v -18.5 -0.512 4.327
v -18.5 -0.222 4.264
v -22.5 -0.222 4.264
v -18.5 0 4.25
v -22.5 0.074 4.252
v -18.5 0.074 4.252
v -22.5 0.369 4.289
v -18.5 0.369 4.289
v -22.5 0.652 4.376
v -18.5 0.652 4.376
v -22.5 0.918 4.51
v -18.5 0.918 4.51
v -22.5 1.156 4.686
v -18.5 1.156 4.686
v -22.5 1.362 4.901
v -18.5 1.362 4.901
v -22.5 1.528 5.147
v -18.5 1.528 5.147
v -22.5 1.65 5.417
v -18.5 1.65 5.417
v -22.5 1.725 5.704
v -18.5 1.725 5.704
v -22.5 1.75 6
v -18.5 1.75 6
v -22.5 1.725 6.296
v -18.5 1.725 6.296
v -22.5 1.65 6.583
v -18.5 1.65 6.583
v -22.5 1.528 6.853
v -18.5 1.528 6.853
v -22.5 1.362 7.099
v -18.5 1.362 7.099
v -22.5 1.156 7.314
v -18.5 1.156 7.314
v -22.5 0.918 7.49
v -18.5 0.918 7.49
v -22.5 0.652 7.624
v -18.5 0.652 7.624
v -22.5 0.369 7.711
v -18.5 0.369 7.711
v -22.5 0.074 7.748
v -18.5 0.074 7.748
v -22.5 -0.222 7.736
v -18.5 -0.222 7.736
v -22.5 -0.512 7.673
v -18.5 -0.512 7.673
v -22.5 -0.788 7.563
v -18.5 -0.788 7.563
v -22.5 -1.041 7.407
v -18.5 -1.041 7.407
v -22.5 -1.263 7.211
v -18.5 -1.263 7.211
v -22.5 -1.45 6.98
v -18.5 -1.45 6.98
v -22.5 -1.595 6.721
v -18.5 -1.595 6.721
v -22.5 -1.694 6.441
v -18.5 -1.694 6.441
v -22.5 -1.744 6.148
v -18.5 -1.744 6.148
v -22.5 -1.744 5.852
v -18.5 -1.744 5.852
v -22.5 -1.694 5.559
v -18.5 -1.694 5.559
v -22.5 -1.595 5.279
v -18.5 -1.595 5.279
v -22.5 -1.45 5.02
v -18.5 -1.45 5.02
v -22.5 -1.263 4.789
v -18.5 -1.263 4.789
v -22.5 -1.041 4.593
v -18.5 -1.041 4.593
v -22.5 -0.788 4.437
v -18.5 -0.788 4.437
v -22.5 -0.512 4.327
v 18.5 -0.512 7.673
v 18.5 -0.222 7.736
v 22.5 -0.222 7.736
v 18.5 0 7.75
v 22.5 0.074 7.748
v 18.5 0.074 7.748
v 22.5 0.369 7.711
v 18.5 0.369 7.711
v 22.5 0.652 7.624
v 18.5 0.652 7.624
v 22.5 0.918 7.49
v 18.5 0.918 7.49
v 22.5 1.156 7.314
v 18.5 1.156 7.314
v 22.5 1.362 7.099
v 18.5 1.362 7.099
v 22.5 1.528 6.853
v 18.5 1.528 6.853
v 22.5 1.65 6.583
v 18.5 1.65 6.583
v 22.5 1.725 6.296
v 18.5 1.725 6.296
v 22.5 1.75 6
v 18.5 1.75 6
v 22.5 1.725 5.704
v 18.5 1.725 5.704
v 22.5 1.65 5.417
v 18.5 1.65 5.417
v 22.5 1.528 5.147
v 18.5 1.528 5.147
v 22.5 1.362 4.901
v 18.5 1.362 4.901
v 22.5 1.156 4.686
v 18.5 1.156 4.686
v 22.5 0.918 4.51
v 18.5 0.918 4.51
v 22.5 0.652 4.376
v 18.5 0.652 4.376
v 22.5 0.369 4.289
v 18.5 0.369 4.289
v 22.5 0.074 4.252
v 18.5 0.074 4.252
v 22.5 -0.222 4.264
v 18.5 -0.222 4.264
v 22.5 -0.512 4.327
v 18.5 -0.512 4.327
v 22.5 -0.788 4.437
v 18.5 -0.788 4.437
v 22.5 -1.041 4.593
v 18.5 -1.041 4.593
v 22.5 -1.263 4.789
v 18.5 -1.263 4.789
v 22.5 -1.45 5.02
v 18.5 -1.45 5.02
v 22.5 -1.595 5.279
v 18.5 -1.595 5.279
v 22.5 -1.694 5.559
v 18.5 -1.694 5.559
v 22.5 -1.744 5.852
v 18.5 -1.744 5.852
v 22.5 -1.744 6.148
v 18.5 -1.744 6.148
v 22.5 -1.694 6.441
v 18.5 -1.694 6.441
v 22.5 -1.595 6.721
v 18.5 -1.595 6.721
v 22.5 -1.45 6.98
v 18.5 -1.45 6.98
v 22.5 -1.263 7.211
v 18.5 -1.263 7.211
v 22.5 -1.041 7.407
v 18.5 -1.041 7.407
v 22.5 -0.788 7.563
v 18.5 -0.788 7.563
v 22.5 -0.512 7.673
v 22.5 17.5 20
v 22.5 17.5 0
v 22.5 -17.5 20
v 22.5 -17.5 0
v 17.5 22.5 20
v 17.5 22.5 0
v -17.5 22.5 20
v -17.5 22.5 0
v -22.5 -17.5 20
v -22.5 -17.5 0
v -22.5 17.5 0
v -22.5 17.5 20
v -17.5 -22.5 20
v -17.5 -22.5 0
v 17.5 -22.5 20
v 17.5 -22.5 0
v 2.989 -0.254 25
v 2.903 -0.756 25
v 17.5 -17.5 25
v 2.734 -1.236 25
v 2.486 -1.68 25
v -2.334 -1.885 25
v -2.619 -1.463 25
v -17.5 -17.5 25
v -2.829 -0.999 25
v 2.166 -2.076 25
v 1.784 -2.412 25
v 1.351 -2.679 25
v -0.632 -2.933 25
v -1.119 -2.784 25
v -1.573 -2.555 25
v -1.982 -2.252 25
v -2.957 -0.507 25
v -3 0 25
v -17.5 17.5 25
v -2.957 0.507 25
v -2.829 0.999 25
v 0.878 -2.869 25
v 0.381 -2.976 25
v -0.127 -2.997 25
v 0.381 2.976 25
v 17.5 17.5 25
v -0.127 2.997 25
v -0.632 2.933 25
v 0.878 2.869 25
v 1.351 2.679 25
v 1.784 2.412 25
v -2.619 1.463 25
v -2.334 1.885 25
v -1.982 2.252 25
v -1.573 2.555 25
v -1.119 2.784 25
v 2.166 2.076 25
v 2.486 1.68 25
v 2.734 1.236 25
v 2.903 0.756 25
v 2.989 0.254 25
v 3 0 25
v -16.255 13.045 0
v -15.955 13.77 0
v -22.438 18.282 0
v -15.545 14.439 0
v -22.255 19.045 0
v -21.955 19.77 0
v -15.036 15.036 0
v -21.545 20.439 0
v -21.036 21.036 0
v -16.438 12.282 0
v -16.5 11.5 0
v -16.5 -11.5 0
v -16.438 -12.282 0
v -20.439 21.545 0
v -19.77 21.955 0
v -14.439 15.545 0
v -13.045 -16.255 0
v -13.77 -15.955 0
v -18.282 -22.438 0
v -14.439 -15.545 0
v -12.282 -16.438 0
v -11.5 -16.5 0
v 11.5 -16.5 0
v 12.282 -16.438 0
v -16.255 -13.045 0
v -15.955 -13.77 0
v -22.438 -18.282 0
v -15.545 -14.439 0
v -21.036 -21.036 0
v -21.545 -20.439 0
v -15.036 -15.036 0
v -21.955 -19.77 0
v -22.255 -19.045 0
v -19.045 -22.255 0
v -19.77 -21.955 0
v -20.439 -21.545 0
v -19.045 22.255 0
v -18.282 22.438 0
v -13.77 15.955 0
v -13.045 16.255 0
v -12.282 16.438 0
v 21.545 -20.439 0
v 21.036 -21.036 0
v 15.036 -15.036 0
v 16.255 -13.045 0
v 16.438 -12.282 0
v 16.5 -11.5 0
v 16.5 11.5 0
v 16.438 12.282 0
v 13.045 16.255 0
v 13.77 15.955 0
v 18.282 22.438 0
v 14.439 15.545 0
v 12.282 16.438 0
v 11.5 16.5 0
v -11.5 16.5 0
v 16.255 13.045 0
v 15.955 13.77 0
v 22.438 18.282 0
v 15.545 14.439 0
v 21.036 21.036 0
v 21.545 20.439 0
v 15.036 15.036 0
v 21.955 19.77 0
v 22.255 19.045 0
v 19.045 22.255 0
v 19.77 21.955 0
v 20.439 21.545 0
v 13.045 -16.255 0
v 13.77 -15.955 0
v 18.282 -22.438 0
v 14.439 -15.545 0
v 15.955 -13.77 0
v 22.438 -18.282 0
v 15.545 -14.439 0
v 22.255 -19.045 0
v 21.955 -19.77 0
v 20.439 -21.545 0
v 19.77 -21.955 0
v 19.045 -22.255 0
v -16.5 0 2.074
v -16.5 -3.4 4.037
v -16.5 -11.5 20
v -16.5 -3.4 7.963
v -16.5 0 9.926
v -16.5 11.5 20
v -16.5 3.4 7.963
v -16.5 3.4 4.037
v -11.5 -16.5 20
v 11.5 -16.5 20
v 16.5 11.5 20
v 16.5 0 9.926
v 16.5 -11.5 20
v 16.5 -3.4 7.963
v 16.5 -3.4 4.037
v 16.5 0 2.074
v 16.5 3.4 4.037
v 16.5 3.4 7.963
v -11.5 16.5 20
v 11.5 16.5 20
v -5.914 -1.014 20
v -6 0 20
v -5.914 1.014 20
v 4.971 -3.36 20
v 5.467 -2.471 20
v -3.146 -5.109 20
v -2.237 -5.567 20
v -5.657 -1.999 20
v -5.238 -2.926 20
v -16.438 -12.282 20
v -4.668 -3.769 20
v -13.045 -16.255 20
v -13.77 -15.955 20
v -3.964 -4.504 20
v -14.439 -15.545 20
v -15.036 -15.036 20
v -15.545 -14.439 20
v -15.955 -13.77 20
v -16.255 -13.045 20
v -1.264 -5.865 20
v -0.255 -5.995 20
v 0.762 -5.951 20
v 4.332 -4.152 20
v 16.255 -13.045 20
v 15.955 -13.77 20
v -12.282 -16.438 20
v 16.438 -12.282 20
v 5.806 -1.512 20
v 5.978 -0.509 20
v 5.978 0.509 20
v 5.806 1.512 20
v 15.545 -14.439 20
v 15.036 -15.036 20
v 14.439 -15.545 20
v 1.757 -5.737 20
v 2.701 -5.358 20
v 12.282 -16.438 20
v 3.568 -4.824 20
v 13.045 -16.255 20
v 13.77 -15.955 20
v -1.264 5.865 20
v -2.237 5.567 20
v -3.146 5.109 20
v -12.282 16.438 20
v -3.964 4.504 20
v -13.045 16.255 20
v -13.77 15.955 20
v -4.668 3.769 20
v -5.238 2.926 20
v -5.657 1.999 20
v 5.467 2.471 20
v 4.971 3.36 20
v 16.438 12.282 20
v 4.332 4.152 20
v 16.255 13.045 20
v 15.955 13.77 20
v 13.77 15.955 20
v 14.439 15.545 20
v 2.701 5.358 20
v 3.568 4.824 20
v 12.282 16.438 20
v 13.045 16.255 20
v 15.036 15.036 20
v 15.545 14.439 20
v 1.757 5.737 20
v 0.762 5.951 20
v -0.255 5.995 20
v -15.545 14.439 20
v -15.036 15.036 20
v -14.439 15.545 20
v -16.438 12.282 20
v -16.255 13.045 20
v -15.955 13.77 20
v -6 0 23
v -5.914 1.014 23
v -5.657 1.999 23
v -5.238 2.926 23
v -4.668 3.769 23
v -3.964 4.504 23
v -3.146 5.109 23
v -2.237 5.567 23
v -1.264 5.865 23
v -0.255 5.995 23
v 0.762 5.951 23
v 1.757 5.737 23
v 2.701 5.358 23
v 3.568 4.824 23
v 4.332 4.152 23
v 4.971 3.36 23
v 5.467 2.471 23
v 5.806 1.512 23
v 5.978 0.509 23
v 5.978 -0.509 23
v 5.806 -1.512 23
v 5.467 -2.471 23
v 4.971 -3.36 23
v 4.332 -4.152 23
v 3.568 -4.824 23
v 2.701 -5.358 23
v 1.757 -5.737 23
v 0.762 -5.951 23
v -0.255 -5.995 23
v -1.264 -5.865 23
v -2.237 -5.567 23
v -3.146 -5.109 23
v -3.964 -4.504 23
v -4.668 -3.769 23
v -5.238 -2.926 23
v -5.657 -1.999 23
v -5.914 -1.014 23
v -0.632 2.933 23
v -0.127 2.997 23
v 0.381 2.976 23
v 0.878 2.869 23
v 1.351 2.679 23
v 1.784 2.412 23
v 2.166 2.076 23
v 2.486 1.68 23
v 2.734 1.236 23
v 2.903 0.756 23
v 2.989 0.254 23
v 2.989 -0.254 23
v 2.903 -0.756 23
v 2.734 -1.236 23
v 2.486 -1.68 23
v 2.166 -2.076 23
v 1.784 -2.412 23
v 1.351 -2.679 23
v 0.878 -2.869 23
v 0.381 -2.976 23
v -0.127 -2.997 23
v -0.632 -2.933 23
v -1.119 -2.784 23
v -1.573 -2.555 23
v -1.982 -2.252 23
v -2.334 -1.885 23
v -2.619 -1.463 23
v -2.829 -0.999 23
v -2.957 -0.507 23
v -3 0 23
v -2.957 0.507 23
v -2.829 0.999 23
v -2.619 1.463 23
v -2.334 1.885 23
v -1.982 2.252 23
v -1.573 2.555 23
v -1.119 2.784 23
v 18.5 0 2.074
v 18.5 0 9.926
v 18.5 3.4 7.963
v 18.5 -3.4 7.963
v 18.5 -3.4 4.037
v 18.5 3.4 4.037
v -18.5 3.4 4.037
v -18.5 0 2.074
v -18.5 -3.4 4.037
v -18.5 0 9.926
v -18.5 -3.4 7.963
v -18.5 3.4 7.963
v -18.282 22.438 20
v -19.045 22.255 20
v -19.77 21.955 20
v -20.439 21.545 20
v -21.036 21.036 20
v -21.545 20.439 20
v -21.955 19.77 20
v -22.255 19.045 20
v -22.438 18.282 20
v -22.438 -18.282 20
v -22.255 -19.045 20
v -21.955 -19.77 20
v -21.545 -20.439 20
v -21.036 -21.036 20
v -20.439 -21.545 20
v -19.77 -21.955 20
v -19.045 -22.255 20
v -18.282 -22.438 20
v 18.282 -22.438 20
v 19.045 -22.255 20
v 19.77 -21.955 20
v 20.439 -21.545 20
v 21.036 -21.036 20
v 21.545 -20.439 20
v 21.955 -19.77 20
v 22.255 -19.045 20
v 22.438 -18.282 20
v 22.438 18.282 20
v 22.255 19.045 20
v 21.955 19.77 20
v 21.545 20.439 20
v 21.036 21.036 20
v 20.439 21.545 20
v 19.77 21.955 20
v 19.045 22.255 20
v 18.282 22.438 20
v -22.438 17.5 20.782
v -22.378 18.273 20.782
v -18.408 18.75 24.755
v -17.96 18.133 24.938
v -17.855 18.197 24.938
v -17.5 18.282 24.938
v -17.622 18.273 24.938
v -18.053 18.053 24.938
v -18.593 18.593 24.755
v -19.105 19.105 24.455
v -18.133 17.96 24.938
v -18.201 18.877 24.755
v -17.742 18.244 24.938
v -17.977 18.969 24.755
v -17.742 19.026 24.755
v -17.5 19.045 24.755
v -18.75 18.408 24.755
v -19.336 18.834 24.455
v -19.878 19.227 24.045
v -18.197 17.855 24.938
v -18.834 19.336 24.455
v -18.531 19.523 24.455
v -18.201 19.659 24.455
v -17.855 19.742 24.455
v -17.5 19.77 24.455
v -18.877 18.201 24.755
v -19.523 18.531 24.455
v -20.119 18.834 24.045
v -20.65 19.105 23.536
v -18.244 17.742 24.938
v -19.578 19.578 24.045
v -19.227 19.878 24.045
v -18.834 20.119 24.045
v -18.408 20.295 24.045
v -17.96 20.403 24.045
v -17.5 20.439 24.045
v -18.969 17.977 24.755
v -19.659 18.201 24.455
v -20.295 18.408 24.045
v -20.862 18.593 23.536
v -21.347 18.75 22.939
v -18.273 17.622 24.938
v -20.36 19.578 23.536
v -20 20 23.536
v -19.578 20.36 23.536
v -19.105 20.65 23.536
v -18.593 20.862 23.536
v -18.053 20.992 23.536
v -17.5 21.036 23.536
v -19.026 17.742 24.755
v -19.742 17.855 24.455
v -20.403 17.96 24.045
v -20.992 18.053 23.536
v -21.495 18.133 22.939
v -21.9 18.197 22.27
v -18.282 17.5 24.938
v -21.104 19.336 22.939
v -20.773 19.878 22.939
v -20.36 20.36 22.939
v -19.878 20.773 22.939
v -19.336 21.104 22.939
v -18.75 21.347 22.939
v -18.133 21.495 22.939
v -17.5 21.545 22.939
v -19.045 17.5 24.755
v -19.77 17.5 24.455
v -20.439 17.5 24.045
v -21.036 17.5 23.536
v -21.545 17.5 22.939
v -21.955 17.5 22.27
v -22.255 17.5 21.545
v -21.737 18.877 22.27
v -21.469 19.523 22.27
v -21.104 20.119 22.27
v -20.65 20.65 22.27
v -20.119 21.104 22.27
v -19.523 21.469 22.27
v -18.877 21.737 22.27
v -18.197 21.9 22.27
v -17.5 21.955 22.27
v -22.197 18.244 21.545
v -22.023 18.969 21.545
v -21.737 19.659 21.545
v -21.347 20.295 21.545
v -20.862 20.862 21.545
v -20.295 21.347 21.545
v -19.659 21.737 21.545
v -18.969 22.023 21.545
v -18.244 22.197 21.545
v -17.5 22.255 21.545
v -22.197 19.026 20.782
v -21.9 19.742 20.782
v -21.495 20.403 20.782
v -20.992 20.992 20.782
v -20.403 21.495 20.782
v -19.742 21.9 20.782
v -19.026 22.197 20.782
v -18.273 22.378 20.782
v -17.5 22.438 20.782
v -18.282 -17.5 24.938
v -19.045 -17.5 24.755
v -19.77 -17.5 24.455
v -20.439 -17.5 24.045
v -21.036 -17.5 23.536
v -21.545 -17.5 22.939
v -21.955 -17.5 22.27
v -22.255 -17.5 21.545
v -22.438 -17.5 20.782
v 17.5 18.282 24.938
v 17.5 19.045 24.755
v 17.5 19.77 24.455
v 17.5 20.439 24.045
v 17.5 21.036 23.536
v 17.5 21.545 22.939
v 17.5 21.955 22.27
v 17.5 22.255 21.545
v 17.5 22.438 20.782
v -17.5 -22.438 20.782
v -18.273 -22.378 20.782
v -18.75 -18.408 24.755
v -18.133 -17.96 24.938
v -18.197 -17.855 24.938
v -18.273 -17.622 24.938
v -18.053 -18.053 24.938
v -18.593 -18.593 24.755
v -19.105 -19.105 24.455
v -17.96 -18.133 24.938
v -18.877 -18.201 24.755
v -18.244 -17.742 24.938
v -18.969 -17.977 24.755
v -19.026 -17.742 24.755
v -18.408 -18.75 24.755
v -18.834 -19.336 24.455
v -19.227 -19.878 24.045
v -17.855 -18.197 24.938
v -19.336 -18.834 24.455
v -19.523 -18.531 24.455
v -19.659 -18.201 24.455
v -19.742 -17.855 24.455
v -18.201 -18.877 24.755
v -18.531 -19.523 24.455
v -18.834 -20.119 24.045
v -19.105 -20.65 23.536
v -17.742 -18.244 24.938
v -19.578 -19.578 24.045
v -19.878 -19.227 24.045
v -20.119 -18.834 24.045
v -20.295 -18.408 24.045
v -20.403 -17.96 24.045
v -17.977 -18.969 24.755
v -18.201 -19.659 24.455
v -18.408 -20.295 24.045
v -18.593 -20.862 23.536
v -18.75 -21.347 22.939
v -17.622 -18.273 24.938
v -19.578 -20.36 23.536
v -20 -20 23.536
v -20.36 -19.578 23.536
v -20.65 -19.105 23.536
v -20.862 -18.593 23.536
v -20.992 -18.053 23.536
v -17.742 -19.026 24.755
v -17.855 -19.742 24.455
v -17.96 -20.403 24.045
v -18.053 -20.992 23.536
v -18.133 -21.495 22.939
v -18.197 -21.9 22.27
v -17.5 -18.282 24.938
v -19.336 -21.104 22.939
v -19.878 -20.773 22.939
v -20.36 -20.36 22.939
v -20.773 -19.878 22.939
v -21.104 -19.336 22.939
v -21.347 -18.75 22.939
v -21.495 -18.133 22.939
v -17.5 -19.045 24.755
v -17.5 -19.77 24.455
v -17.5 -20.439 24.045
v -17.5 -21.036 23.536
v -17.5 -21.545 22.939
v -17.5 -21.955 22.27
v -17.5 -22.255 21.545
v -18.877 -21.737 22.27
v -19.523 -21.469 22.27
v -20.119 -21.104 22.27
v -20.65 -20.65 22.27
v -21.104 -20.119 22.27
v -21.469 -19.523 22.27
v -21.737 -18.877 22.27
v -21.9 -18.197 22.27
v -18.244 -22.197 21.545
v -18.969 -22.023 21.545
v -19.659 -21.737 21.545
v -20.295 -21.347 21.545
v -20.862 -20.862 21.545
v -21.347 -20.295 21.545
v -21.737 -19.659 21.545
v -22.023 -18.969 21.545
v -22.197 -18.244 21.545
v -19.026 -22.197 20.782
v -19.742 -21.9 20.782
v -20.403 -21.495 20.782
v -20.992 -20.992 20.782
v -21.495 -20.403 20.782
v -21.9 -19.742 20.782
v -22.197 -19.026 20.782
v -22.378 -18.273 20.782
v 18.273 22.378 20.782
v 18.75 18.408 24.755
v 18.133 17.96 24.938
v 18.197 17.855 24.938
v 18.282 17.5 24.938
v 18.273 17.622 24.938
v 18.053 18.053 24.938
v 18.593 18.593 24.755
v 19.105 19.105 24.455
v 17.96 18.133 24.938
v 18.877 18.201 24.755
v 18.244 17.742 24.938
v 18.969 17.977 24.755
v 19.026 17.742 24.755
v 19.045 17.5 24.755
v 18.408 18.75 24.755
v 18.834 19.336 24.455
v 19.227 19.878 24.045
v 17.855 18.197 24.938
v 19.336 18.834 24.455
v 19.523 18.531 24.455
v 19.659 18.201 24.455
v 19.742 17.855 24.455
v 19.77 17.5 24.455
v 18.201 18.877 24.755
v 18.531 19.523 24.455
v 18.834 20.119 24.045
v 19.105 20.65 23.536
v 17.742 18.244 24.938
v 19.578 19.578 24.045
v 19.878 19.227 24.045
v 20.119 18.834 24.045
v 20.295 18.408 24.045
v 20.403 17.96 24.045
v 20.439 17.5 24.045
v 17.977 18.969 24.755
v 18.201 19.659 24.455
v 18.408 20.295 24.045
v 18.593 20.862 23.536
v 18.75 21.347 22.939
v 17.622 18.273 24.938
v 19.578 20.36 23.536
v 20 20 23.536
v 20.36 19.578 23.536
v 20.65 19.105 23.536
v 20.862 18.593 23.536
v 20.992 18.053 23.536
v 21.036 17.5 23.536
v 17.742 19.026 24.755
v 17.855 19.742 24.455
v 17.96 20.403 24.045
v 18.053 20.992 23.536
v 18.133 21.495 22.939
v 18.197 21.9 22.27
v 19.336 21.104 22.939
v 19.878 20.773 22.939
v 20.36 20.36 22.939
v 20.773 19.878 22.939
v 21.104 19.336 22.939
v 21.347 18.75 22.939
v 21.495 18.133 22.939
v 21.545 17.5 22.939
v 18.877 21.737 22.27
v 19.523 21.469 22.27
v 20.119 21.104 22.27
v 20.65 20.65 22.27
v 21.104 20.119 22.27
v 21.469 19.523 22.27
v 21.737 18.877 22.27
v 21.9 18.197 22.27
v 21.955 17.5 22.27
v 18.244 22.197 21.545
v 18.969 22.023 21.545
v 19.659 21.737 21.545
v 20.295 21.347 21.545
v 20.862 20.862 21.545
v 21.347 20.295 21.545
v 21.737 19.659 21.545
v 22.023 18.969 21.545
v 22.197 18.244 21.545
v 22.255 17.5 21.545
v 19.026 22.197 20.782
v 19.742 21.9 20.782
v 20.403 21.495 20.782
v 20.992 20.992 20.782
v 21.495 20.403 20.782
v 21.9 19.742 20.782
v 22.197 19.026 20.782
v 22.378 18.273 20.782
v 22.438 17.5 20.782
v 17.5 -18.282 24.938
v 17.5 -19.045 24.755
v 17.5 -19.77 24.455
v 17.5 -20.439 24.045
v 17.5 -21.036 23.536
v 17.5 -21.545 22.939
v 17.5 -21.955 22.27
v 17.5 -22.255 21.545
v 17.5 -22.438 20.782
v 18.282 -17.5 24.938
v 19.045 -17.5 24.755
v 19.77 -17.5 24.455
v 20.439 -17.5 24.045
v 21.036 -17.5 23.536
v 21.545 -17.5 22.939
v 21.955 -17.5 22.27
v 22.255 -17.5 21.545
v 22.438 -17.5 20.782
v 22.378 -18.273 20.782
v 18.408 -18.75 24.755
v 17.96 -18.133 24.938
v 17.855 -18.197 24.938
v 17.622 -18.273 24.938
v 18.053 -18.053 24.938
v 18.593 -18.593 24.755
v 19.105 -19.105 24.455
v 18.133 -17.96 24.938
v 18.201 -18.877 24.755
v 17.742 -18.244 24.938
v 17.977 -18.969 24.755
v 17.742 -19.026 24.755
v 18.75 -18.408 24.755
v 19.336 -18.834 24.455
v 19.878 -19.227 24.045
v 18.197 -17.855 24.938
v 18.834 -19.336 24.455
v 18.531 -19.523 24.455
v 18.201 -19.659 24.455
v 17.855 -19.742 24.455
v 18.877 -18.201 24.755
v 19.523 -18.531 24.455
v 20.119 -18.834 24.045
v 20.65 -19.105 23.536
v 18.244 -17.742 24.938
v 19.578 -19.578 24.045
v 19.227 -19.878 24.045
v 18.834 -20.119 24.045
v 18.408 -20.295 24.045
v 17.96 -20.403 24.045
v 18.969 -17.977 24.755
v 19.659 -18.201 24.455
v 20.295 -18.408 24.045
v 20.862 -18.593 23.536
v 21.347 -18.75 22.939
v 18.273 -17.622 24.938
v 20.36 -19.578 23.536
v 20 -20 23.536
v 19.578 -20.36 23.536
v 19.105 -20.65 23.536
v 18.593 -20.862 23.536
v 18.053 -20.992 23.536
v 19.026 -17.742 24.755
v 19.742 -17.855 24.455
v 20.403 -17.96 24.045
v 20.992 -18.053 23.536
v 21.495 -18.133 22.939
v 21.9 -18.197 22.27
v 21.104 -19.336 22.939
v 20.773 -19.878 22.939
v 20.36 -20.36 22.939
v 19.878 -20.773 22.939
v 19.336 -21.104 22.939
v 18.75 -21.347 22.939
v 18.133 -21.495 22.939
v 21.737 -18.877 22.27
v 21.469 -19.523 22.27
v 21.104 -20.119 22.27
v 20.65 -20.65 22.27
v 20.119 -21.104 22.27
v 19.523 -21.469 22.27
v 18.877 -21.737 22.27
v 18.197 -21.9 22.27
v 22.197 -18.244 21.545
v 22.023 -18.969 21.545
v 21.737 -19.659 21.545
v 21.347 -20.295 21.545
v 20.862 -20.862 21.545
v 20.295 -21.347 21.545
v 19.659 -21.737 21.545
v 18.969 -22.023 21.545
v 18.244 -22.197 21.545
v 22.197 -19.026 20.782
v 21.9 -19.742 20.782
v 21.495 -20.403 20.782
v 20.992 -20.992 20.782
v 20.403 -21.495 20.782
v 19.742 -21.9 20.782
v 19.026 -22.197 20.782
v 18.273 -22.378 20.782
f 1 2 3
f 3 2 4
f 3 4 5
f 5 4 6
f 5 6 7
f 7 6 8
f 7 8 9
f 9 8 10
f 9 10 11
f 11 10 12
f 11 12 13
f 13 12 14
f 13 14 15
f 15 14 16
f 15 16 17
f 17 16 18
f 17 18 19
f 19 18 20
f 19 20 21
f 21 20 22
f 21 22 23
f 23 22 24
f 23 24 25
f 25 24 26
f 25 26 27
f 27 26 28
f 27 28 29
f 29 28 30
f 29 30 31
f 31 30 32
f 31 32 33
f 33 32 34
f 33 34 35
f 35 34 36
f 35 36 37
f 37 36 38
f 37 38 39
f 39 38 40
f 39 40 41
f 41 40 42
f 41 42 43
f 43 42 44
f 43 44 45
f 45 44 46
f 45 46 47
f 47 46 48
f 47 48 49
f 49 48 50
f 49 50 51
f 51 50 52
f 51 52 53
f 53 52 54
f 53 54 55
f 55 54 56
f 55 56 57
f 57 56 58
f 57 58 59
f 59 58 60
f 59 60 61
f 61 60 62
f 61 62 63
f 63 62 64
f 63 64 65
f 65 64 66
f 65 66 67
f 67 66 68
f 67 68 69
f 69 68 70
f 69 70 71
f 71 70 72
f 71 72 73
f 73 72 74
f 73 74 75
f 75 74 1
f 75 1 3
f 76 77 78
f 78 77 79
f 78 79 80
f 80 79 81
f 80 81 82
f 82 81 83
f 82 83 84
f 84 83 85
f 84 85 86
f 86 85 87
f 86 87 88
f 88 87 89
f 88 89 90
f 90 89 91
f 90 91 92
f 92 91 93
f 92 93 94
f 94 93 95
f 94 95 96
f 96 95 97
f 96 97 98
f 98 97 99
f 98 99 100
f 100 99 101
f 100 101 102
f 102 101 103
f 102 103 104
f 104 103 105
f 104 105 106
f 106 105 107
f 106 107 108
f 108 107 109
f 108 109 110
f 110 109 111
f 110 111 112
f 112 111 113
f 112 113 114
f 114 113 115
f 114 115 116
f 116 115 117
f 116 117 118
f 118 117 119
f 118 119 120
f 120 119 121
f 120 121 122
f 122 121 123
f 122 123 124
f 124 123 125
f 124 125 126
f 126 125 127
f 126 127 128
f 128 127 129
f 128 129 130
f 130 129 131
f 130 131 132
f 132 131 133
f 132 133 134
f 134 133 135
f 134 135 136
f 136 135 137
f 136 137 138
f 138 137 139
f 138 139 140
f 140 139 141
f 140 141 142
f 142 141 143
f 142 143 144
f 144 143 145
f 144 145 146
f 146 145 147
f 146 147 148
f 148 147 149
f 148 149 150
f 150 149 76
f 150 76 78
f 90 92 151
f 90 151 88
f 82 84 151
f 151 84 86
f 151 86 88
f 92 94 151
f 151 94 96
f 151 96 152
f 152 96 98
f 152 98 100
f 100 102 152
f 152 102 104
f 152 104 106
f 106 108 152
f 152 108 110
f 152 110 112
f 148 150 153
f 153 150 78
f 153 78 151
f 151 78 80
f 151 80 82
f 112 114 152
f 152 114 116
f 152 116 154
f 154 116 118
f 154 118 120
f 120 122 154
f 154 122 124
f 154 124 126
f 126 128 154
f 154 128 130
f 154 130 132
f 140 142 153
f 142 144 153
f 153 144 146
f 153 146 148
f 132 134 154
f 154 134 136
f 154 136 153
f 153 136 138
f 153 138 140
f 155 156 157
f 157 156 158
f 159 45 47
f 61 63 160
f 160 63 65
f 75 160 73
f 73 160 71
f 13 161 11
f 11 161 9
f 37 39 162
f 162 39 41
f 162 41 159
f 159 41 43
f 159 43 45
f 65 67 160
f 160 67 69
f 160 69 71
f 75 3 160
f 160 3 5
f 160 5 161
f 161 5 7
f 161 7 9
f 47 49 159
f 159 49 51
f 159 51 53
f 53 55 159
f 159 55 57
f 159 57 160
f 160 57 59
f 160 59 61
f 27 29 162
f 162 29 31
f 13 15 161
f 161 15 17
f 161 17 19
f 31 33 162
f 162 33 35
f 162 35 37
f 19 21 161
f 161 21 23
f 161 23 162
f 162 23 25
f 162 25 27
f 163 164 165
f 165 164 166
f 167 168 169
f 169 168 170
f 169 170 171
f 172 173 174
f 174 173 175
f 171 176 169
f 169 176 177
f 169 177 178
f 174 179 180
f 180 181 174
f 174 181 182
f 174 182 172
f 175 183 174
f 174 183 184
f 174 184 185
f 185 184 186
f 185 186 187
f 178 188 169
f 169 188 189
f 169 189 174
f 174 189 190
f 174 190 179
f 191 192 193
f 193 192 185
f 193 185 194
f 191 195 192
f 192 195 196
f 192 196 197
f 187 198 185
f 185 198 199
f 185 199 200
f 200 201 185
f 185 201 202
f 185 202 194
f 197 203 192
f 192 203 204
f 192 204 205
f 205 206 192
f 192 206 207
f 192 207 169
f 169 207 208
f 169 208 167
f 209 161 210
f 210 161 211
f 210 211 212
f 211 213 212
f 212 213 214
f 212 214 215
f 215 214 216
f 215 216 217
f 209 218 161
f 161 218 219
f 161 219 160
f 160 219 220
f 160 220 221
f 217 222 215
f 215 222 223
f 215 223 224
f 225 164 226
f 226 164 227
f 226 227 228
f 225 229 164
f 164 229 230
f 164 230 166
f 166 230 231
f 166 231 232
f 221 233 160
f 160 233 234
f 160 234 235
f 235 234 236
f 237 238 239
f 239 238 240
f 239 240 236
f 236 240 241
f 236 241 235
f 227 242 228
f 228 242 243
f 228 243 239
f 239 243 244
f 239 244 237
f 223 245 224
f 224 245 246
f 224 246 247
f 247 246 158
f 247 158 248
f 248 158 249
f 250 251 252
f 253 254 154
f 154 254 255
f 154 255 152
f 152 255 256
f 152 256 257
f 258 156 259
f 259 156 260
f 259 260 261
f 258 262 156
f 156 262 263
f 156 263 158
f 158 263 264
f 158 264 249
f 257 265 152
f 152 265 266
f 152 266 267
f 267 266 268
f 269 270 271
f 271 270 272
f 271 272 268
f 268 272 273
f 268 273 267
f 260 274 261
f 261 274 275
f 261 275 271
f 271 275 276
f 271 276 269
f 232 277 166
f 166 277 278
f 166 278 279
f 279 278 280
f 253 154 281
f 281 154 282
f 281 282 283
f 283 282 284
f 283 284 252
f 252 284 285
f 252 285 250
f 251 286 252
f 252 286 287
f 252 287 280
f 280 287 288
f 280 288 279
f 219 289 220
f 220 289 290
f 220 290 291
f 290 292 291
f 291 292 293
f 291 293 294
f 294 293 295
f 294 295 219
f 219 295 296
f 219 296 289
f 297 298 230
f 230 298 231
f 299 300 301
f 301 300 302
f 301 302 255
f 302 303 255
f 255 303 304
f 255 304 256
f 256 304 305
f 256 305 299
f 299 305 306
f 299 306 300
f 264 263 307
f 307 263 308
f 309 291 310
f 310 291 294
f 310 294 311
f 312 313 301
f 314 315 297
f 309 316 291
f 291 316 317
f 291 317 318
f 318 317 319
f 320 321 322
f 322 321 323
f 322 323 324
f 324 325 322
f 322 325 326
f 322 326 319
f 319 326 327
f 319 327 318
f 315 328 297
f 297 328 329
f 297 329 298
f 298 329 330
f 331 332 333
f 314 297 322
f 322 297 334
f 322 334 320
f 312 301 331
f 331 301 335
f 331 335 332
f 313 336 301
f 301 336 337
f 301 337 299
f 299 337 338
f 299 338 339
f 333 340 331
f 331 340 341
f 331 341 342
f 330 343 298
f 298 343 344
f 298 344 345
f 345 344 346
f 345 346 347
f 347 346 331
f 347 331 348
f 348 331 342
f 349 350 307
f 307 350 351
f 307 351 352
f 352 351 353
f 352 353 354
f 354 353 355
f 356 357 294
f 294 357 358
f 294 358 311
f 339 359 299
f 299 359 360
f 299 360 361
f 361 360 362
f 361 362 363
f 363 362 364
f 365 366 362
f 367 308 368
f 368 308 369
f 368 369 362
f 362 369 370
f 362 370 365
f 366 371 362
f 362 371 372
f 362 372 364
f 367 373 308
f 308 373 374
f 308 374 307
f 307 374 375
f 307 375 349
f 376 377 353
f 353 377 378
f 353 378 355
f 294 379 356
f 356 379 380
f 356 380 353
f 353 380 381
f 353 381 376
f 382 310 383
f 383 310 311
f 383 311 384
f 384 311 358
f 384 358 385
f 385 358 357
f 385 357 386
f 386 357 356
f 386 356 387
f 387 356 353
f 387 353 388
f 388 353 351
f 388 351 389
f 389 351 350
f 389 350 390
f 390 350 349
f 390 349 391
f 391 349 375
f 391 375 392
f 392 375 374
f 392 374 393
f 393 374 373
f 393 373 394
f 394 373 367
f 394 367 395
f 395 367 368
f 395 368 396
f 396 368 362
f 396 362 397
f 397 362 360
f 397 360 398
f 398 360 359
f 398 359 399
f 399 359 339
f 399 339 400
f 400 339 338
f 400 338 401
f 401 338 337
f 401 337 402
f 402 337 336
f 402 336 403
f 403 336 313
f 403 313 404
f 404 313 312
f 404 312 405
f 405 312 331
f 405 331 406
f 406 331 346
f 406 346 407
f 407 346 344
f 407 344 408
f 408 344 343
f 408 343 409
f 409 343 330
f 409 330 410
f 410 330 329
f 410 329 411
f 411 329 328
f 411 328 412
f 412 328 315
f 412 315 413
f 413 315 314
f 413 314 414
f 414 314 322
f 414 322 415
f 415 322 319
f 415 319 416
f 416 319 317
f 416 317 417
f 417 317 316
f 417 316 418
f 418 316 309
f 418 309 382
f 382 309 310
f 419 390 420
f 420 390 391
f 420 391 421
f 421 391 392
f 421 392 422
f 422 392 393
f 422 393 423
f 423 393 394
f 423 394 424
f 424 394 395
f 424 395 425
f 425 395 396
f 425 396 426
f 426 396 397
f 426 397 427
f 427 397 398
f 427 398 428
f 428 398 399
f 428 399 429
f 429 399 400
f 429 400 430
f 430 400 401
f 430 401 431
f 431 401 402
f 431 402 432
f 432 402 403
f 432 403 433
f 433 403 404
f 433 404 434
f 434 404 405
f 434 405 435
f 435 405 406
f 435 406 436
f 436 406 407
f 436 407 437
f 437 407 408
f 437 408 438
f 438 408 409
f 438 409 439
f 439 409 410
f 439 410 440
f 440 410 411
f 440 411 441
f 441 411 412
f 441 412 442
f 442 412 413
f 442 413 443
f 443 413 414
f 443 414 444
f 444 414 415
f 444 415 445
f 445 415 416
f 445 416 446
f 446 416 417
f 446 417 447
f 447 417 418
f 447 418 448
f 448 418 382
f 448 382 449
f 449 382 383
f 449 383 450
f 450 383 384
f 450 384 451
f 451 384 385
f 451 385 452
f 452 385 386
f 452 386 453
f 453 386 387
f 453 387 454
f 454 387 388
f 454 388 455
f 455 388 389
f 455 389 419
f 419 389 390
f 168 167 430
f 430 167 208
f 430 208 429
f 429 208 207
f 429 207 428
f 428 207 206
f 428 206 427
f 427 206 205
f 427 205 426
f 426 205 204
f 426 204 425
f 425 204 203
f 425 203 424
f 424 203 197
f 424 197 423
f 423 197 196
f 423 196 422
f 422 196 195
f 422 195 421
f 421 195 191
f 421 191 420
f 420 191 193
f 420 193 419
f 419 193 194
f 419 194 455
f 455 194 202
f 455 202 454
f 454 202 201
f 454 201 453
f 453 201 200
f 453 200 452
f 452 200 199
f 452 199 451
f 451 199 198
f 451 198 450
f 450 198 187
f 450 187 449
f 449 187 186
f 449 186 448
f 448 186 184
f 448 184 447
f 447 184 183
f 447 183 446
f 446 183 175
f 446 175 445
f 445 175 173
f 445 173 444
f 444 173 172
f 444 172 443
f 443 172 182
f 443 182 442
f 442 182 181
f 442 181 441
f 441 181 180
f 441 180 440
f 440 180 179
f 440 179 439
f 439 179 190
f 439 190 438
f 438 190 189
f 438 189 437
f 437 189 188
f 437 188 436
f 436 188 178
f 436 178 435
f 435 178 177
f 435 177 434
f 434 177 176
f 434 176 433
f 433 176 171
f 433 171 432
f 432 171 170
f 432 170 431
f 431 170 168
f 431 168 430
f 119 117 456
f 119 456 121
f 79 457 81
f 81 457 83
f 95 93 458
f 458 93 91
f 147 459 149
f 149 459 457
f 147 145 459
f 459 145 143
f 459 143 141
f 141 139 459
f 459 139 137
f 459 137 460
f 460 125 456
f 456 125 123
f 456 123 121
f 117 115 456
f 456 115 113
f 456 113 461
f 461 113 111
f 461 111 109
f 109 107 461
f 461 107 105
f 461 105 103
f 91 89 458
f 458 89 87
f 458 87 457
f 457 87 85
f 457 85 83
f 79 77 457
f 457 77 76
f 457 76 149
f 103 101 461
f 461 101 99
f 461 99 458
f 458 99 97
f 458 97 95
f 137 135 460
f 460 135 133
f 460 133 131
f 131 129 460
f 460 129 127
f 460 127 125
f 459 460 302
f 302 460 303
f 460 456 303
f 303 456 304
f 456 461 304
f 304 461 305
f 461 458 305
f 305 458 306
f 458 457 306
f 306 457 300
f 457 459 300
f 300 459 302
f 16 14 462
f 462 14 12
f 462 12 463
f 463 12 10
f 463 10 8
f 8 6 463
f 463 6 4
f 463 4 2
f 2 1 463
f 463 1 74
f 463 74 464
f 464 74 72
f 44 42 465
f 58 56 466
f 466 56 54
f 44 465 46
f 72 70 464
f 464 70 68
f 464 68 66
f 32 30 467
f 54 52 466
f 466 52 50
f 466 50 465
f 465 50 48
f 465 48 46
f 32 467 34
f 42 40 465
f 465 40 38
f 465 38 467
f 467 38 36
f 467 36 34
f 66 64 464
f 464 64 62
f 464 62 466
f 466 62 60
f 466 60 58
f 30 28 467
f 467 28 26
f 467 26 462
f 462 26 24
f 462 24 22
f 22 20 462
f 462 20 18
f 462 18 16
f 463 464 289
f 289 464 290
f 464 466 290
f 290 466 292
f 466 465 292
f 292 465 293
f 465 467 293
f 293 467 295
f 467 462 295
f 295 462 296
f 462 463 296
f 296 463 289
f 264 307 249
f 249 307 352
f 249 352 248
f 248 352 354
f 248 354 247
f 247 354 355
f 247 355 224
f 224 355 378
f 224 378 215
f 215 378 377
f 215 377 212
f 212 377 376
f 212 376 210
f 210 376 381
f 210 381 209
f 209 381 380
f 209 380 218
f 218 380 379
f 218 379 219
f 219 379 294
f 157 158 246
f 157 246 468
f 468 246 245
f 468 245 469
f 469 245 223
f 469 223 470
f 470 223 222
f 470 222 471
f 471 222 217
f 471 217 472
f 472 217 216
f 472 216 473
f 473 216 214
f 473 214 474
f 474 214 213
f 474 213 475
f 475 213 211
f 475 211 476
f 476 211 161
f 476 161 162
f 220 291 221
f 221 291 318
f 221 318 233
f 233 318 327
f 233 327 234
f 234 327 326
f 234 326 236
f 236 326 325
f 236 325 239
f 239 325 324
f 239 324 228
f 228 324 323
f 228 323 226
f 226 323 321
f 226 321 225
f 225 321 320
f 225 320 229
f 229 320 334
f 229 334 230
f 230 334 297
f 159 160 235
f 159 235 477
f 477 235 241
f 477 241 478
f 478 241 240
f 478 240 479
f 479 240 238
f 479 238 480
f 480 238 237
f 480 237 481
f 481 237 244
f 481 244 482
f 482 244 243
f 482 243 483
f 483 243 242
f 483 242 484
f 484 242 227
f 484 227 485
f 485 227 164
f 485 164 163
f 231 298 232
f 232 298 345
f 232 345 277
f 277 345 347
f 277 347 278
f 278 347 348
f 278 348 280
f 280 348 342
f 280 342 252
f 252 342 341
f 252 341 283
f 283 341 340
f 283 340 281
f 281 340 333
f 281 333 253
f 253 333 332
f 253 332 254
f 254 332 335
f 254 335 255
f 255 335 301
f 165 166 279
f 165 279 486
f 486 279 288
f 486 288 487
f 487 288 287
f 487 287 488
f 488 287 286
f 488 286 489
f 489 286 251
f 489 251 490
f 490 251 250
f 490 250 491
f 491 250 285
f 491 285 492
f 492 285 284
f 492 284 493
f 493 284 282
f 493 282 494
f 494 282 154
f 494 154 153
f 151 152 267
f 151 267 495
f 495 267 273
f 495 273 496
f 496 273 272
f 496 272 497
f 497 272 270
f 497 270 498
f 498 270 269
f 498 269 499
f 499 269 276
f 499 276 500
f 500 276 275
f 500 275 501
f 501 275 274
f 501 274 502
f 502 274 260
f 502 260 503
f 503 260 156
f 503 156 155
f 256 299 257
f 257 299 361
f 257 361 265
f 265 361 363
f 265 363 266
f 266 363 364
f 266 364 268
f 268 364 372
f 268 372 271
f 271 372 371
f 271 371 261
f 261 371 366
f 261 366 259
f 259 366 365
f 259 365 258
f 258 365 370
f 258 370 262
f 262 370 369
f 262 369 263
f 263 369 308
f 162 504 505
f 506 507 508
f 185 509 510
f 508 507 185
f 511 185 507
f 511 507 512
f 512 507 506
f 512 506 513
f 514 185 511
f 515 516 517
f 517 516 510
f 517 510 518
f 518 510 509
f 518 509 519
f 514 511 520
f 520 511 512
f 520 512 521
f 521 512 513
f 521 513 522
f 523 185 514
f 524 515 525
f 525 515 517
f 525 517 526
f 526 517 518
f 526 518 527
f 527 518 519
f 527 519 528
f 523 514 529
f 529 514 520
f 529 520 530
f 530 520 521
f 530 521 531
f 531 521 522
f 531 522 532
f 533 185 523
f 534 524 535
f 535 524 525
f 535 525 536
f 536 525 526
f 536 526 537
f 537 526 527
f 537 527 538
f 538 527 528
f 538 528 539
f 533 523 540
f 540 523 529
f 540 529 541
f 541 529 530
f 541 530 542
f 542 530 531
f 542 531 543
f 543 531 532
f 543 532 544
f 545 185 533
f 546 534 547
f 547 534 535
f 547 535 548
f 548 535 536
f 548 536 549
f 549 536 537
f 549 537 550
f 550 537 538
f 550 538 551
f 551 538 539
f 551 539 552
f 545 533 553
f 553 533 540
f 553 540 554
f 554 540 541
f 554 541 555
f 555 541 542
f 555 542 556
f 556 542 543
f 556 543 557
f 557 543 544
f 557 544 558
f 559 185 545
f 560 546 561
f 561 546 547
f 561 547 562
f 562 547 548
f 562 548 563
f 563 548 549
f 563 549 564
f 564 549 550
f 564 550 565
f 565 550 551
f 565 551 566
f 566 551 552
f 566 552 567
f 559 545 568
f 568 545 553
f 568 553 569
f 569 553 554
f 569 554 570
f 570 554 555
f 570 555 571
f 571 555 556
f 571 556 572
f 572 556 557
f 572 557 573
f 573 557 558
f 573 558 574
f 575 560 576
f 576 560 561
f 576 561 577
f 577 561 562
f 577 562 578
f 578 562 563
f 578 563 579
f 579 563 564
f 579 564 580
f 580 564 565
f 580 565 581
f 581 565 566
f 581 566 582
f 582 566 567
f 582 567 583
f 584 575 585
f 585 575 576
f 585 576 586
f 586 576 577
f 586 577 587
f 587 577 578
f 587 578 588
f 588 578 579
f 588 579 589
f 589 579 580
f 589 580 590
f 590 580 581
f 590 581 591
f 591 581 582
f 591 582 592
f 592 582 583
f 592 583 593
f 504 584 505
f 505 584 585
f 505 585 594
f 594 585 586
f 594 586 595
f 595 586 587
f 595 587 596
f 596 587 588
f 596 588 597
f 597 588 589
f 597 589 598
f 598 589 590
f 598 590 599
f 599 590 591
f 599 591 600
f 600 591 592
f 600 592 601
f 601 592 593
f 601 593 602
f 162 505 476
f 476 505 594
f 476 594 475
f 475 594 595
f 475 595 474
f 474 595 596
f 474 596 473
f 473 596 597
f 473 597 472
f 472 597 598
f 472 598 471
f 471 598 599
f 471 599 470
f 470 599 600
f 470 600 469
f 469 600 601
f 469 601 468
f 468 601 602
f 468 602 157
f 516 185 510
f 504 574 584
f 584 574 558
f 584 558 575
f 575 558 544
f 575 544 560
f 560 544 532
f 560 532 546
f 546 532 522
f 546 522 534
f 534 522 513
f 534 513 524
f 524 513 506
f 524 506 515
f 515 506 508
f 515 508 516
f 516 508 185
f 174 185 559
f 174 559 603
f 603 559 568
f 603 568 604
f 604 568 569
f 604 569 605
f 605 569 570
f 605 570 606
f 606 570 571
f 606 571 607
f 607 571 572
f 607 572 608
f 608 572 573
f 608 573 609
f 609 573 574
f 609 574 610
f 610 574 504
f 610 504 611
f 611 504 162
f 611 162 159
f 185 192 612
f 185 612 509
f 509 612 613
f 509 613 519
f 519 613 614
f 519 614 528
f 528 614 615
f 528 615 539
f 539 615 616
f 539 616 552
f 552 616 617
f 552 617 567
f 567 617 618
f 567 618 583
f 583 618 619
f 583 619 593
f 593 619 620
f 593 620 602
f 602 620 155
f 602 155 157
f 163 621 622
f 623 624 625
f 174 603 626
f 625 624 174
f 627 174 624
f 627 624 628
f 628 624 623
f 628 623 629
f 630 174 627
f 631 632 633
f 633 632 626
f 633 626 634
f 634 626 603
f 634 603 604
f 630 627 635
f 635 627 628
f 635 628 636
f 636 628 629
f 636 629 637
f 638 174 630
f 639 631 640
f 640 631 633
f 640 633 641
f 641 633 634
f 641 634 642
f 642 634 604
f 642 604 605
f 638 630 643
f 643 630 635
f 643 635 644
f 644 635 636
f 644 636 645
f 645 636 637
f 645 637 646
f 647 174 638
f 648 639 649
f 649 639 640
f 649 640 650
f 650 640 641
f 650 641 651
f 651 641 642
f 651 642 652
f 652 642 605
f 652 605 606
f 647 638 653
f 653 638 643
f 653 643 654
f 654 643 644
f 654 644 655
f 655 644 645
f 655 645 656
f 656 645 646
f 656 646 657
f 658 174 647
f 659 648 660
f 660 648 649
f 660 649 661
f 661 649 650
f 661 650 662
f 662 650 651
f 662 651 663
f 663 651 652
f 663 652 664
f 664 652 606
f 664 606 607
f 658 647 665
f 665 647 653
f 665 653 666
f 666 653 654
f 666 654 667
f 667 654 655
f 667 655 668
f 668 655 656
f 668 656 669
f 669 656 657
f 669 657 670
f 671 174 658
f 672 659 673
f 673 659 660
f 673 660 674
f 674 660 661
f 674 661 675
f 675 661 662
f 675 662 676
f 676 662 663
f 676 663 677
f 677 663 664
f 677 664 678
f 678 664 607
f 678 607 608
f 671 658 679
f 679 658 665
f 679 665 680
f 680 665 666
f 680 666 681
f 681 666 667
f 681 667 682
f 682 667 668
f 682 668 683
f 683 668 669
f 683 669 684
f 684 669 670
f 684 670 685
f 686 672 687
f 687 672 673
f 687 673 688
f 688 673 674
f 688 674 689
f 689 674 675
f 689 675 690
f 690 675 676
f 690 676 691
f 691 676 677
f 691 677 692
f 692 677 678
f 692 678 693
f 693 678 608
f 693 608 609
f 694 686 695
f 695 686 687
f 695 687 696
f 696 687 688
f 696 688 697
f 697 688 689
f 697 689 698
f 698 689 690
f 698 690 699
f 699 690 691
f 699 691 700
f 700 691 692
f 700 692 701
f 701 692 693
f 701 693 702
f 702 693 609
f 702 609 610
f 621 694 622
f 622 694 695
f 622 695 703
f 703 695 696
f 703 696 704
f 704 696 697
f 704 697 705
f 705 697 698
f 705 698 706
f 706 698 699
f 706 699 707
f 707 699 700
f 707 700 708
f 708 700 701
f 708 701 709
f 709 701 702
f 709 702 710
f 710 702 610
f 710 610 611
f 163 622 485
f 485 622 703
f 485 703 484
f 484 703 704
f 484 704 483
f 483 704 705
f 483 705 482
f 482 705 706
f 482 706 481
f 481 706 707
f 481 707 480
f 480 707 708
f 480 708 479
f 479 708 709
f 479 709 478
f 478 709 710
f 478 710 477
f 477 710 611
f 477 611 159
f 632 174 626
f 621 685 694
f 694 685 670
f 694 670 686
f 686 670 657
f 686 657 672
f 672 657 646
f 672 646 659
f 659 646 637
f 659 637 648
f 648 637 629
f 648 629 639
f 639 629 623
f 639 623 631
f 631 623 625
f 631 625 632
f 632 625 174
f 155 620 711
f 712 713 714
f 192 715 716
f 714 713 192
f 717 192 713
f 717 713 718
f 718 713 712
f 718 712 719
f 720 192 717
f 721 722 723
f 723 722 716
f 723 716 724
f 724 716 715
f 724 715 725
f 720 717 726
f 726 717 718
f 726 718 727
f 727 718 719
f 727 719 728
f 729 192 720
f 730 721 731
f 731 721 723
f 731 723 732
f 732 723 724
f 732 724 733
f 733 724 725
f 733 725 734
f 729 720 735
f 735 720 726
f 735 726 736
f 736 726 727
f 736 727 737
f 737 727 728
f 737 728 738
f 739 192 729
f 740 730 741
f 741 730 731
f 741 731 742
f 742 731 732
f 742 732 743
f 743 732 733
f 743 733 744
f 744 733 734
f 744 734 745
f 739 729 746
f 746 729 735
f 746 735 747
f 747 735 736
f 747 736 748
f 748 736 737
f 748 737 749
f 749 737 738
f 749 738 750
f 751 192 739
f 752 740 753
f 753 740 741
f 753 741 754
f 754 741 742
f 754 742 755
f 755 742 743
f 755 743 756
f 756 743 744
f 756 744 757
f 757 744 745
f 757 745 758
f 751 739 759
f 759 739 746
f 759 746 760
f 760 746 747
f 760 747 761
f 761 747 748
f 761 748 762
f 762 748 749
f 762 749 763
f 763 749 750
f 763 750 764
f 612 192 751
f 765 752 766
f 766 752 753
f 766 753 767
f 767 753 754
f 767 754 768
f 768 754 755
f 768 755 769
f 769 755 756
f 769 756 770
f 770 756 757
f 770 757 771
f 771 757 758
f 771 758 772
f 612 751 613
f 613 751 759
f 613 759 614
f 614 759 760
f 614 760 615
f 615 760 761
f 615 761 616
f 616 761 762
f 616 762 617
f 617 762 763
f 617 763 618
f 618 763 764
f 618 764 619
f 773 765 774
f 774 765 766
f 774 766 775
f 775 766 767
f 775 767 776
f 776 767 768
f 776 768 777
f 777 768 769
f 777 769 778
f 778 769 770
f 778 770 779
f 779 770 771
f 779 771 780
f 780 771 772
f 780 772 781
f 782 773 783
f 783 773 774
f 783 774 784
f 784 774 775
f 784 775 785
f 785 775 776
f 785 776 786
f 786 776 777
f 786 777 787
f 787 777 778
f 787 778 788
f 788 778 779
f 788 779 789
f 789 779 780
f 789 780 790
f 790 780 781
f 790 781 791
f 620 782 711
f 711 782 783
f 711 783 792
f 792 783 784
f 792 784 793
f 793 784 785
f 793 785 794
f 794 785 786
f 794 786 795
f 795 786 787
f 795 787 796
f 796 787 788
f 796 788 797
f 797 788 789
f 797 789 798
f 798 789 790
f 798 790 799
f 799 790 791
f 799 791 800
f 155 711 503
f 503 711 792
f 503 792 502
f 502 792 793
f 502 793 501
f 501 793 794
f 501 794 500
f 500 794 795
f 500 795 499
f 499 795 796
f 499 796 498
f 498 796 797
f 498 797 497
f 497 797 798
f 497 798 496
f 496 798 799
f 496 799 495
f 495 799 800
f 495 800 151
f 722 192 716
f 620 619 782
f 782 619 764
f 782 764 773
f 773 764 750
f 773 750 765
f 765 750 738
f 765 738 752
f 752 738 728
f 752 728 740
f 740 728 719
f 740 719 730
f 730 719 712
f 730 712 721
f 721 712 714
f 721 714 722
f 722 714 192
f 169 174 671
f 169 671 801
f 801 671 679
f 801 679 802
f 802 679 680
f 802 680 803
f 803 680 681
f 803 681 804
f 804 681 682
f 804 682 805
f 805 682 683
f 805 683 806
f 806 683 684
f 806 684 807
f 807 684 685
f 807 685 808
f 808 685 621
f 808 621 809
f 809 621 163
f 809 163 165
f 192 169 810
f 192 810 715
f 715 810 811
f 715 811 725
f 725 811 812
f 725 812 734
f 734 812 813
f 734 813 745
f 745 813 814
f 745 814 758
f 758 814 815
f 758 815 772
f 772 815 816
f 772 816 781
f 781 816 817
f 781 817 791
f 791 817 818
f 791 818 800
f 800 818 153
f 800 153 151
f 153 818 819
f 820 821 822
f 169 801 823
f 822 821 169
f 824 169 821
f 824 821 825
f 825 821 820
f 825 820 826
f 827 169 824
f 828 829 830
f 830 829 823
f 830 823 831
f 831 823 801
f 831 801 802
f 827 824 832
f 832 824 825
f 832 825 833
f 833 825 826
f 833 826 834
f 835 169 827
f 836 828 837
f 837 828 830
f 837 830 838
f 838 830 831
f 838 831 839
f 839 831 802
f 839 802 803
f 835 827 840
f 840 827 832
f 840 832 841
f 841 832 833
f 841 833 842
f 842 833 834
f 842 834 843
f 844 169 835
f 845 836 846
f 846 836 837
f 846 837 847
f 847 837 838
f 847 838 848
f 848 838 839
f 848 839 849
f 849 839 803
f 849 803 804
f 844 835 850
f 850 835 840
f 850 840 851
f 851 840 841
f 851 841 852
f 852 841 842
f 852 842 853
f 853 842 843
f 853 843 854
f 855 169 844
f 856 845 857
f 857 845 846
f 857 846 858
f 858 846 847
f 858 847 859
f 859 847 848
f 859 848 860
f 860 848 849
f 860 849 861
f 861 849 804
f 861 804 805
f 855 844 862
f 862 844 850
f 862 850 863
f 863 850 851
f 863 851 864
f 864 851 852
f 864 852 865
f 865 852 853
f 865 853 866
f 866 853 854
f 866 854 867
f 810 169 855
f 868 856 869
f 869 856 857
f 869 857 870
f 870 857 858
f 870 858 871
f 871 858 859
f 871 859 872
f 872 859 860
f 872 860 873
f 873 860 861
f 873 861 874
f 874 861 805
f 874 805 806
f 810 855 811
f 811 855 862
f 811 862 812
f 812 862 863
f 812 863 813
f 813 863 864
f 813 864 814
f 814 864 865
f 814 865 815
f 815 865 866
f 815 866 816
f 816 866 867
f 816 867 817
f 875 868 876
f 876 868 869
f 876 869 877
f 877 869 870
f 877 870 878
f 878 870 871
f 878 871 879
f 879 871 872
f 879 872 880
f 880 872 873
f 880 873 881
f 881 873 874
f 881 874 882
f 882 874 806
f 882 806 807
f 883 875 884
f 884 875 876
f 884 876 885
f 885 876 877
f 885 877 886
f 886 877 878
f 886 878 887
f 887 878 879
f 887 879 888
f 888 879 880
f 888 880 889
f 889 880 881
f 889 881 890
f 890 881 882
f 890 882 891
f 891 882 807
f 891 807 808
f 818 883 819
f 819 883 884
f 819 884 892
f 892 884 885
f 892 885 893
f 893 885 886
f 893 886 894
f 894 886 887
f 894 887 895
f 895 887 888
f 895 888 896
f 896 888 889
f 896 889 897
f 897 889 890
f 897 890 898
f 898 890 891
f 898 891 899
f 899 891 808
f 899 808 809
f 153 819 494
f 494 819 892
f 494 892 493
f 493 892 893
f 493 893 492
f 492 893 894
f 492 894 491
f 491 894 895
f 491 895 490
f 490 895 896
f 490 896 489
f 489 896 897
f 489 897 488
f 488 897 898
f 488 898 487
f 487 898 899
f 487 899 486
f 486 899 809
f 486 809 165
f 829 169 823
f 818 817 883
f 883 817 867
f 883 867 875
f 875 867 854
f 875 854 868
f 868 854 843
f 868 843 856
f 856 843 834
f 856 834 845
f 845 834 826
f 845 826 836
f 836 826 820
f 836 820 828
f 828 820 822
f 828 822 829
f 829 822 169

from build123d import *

# Parameters (mm, degrees)
CROQUIS1_W              = 45
CROQUIS1_H              = 45
SALIENTE_EXTRUIR1_DEPTH = 25
CROQUIS2_W              = 33
CROQUIS2_H              = 33
CORTAR_EXTRUIR1_DEPTH   = 20
CROQUIS3_R              = 6
CORTAR_EXTRUIR2_DEPTH   = 3
CROQUIS4_R              = 3
CORTAR_EXTRUIR3_DEPTH   = 6
CROQUIS5_R              = 1.75
CORTAR_EXTRUIR4_DEPTH   = 56
CORTAR_EXTRUIR5_DEPTH   = 2
CORTAR_EXTRUIR6_DEPTH   = 2
REDONDEO1_R             = 5
REDONDEO2_R             = 5


with BuildPart() as part:
    # Croquis1 → Saliente-Extruir1 (new body)
    with BuildSketch(Plane.XY):
        Rectangle(CROQUIS1_W, CROQUIS1_H)
    extrude(amount=SALIENTE_EXTRUIR1_DEPTH)

    # Croquis2 → Cortar-Extruir1 (cut)
    with BuildSketch(Plane(origin=(0, 0, 0), x_dir=(-1, 0, 0), z_dir=(0, 0, -1))):
        Rectangle(CROQUIS2_W, CROQUIS2_H)
    extrude(amount=-CORTAR_EXTRUIR1_DEPTH, mode=Mode.SUBTRACT)

    # Croquis3 → Cortar-Extruir2 (cut)
    with BuildSketch(Plane(origin=(0, 0, 20), x_dir=(-1, 0, 0), z_dir=(0, 0, -1))):
        Circle(CROQUIS3_R)
    extrude(amount=-CORTAR_EXTRUIR2_DEPTH, mode=Mode.SUBTRACT)

    # Croquis4 → Cortar-Extruir3 (cut)
    with BuildSketch(Plane(origin=(0, 0, 20), x_dir=(-1, 0, 0), z_dir=(0, 0, -1))):
        Circle(CROQUIS4_R)
    extrude(amount=-CORTAR_EXTRUIR3_DEPTH, mode=Mode.SUBTRACT)

    # Croquis5 → Cortar-Extruir4 (cut)
    with BuildSketch(Plane(origin=(22.5, 0, 0), x_dir=(0, 0, -1), z_dir=(1, 0, 0))):
        with Locations(Location((-6, 0, 0), (0, 0, 90))):
            Circle(CROQUIS5_R)
    extrude(amount=-CORTAR_EXTRUIR4_DEPTH, mode=Mode.SUBTRACT)

    # Croquis6 → Cortar-Extruir5 (cut)
    with BuildSketch(Plane.ZY.offset(-16.5)):
        Polygon((7.962990915, -3.4), (9.92598183, 0), (7.962990915, 3.4), (4.037009085, 3.4), (2.07401817, 0), (4.037009085, -3.4), align=None)
    extrude(amount=-CORTAR_EXTRUIR5_DEPTH, mode=Mode.SUBTRACT)

    # Croquis7 → Cortar-Extruir6 (cut)
    with BuildSketch(Plane(origin=(-16.5, 0, 0), x_dir=(0, 0, -1), z_dir=(1, 0, 0))):
        Polygon((-2.07401817, 0), (-4.037009085, 3.4), (-7.962990915, 3.4), (-9.92598183, 0), (-7.962990915, -3.4), (-4.037009085, -3.4), align=None)
    extrude(amount=-CORTAR_EXTRUIR6_DEPTH, mode=Mode.SUBTRACT)

    # Redondeo1
    redondeo1_edges = [part.edges().sort_by_distance(p)[0] for p in [
        (-16.5, 16.5, 10),
        (-16.5, -16.5, 10),
        (16.5, -16.5, 10),
        (16.5, 16.5, 10),
        (22.5, -22.5, 12.5),
        (-22.5, -22.5, 12.5),
        (-22.5, 22.5, 12.5),
        (22.5, 22.5, 12.5),
    ]]
    fillet(redondeo1_edges, radius=REDONDEO1_R)

    # Redondeo2
    redondeo2_edges = [part.edges().sort_by_distance(p)[0] for p in [
        (0, 22.5, 25),
        (22.5, 0, 25),
        (0, -22.5, 25),
        (21.035533906, 21.035533906, 25),
        (21.035533906, -21.035533906, 25),
        (-21.035533906, -21.035533906, 25),
        (-21.035533906, 21.035533906, 25),
        (-22.5, 0, 25),
    ]]
    fillet(redondeo2_edges, radius=REDONDEO2_R)


solid = part.part
